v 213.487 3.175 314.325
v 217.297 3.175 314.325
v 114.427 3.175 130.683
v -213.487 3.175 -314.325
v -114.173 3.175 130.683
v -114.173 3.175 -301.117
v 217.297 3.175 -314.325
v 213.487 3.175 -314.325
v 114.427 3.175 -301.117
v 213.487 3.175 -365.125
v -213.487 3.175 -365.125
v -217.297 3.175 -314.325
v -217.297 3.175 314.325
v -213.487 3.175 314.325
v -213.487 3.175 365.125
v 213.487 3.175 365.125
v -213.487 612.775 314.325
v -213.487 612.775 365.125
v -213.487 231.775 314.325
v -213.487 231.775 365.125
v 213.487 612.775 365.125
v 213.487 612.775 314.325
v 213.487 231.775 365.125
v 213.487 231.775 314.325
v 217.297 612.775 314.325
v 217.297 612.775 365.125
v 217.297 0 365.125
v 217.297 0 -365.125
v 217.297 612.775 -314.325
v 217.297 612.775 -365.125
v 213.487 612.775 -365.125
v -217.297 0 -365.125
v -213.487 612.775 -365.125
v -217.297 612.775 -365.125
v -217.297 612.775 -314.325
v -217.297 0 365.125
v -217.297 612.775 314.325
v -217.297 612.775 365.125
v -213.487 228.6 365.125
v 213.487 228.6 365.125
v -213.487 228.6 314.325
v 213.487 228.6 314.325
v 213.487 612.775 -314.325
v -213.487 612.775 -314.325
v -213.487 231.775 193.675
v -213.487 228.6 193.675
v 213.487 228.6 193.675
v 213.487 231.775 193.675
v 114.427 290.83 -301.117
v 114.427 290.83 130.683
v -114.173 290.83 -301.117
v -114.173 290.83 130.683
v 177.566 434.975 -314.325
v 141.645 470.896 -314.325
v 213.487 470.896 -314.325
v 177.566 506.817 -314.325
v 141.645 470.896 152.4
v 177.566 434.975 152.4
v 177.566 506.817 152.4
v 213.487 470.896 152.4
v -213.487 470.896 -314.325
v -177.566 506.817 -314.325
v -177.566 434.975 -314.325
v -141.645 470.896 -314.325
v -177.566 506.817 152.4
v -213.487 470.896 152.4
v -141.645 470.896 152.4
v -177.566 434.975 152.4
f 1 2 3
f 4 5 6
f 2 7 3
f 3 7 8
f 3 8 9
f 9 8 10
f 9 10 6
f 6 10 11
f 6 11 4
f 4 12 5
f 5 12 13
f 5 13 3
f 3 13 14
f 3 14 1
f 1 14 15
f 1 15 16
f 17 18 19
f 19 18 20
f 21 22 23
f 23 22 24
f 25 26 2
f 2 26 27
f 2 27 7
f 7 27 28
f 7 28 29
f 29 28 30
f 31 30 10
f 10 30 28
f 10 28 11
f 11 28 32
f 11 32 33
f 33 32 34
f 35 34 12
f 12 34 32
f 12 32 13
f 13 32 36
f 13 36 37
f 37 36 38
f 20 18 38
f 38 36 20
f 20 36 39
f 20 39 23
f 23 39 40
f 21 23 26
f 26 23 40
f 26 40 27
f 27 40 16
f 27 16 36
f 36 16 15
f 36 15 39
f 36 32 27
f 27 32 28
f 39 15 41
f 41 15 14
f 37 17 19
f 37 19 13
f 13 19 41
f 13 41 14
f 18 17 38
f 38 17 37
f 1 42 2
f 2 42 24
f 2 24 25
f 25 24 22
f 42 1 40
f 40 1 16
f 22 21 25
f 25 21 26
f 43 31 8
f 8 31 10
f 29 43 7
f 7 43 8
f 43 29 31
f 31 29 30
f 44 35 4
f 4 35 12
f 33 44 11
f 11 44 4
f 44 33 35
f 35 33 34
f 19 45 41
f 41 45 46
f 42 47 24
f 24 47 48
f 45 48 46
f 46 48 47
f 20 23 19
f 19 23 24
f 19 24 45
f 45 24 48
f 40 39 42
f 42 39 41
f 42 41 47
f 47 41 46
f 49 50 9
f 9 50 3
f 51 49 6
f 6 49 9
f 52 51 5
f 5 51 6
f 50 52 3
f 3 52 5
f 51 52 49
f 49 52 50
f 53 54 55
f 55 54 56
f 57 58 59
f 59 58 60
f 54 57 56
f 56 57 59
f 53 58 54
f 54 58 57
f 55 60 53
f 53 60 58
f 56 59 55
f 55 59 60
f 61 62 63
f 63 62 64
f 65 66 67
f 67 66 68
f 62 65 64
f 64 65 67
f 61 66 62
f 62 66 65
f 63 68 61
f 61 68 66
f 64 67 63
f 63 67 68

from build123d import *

# Parameters (mm, degrees)
SKETCH1_W             = 434.594
SKETCH1_H             = 730.25
BOSS_EXTRUDE1_DEPTH   = 3.175
SKETCH2_W             = 3.81
SKETCH2_H             = 50.8
BOSS_EXTRUDE2_DEPTH   = 609.6
SKETCH3_W             = 426.974
SKETCH3_H             = 171.45
BOSS_EXTRUDE3_DEPTH   = 3.175
SKETCH4_W             = 228.6
SKETCH4_H             = 431.8
BOSS_EXTRUDE4_DEPTH   = 287.655
BOSS_EXTRUDE5_DEPTH   = 466.725
BOSS_EXTRUDE5_2_DEPTH = 466.725


with BuildPart() as part:
    # Sketch1 → Boss-Extrude1 (new body)
    with BuildSketch(Plane(origin=(0, 0, 0), x_dir=(1, 0, 0), z_dir=(0, 1, 0))):
        Rectangle(SKETCH1_W, SKETCH1_H)
    extrude(amount=BOSS_EXTRUDE1_DEPTH)

    # Sketch2 → Boss-Extrude2 (add)
    with BuildSketch(Plane(origin=(0, 3.175, 0), x_dir=(1, 0, 0), z_dir=(0, 1, 0))):
        with Locations((-215.392, -339.725)):
            Rectangle(SKETCH2_W, SKETCH2_H)
        with Locations((215.392, -339.725)):
            Rectangle(SKETCH2_W, SKETCH2_H)
        with Locations((215.392, 339.725)):
            Rectangle(SKETCH2_W, SKETCH2_H)
        with Locations((-215.392, 339.725)):
            Rectangle(SKETCH2_W, SKETCH2_H)
    extrude(amount=BOSS_EXTRUDE2_DEPTH)

    # Sketch3 → Boss-Extrude3 (add)
    with BuildSketch(Plane(origin=(0, 228.6, 0), x_dir=(1, 0, 0), z_dir=(0, 1, 0))):
        with Locations((0, -279.4)):
            Rectangle(SKETCH3_W, SKETCH3_H)
    extrude(amount=BOSS_EXTRUDE3_DEPTH)

    # Sketch4 → Boss-Extrude4 (add)
    with BuildSketch(Plane(origin=(0, 3.175, 0), x_dir=(1, 0, 0), z_dir=(0, 1, 0))):
        with Locations((0.127, 85.217)):
            Rectangle(SKETCH4_W, SKETCH4_H)
    extrude(amount=BOSS_EXTRUDE4_DEPTH)


with BuildPart() as body_2:
    # Sketch5 → Boss-Extrude5 (new body)
    with BuildSketch(Plane.XY.offset(152.4)):
        Polygon((177.565975516, 506.817048969), (141.644951031, 470.896024484), (177.565975516, 434.975), (213.487, 470.896024484), align=None)
    extrude(amount=-BOSS_EXTRUDE5_DEPTH)


with BuildPart() as body_3:
    # Sketch5 → Boss-Extrude5 2 (new body)
    with BuildSketch(Plane.XY.offset(152.4)):
        Polygon((-177.565975516, 434.975), (-213.487, 470.896024484), (-177.565975516, 506.817048969), (-141.644951031, 470.896024484), align=None)
    extrude(amount=-BOSS_EXTRUDE5_2_DEPTH)


solid = Compound([part.part, body_2.part, body_3.part])
